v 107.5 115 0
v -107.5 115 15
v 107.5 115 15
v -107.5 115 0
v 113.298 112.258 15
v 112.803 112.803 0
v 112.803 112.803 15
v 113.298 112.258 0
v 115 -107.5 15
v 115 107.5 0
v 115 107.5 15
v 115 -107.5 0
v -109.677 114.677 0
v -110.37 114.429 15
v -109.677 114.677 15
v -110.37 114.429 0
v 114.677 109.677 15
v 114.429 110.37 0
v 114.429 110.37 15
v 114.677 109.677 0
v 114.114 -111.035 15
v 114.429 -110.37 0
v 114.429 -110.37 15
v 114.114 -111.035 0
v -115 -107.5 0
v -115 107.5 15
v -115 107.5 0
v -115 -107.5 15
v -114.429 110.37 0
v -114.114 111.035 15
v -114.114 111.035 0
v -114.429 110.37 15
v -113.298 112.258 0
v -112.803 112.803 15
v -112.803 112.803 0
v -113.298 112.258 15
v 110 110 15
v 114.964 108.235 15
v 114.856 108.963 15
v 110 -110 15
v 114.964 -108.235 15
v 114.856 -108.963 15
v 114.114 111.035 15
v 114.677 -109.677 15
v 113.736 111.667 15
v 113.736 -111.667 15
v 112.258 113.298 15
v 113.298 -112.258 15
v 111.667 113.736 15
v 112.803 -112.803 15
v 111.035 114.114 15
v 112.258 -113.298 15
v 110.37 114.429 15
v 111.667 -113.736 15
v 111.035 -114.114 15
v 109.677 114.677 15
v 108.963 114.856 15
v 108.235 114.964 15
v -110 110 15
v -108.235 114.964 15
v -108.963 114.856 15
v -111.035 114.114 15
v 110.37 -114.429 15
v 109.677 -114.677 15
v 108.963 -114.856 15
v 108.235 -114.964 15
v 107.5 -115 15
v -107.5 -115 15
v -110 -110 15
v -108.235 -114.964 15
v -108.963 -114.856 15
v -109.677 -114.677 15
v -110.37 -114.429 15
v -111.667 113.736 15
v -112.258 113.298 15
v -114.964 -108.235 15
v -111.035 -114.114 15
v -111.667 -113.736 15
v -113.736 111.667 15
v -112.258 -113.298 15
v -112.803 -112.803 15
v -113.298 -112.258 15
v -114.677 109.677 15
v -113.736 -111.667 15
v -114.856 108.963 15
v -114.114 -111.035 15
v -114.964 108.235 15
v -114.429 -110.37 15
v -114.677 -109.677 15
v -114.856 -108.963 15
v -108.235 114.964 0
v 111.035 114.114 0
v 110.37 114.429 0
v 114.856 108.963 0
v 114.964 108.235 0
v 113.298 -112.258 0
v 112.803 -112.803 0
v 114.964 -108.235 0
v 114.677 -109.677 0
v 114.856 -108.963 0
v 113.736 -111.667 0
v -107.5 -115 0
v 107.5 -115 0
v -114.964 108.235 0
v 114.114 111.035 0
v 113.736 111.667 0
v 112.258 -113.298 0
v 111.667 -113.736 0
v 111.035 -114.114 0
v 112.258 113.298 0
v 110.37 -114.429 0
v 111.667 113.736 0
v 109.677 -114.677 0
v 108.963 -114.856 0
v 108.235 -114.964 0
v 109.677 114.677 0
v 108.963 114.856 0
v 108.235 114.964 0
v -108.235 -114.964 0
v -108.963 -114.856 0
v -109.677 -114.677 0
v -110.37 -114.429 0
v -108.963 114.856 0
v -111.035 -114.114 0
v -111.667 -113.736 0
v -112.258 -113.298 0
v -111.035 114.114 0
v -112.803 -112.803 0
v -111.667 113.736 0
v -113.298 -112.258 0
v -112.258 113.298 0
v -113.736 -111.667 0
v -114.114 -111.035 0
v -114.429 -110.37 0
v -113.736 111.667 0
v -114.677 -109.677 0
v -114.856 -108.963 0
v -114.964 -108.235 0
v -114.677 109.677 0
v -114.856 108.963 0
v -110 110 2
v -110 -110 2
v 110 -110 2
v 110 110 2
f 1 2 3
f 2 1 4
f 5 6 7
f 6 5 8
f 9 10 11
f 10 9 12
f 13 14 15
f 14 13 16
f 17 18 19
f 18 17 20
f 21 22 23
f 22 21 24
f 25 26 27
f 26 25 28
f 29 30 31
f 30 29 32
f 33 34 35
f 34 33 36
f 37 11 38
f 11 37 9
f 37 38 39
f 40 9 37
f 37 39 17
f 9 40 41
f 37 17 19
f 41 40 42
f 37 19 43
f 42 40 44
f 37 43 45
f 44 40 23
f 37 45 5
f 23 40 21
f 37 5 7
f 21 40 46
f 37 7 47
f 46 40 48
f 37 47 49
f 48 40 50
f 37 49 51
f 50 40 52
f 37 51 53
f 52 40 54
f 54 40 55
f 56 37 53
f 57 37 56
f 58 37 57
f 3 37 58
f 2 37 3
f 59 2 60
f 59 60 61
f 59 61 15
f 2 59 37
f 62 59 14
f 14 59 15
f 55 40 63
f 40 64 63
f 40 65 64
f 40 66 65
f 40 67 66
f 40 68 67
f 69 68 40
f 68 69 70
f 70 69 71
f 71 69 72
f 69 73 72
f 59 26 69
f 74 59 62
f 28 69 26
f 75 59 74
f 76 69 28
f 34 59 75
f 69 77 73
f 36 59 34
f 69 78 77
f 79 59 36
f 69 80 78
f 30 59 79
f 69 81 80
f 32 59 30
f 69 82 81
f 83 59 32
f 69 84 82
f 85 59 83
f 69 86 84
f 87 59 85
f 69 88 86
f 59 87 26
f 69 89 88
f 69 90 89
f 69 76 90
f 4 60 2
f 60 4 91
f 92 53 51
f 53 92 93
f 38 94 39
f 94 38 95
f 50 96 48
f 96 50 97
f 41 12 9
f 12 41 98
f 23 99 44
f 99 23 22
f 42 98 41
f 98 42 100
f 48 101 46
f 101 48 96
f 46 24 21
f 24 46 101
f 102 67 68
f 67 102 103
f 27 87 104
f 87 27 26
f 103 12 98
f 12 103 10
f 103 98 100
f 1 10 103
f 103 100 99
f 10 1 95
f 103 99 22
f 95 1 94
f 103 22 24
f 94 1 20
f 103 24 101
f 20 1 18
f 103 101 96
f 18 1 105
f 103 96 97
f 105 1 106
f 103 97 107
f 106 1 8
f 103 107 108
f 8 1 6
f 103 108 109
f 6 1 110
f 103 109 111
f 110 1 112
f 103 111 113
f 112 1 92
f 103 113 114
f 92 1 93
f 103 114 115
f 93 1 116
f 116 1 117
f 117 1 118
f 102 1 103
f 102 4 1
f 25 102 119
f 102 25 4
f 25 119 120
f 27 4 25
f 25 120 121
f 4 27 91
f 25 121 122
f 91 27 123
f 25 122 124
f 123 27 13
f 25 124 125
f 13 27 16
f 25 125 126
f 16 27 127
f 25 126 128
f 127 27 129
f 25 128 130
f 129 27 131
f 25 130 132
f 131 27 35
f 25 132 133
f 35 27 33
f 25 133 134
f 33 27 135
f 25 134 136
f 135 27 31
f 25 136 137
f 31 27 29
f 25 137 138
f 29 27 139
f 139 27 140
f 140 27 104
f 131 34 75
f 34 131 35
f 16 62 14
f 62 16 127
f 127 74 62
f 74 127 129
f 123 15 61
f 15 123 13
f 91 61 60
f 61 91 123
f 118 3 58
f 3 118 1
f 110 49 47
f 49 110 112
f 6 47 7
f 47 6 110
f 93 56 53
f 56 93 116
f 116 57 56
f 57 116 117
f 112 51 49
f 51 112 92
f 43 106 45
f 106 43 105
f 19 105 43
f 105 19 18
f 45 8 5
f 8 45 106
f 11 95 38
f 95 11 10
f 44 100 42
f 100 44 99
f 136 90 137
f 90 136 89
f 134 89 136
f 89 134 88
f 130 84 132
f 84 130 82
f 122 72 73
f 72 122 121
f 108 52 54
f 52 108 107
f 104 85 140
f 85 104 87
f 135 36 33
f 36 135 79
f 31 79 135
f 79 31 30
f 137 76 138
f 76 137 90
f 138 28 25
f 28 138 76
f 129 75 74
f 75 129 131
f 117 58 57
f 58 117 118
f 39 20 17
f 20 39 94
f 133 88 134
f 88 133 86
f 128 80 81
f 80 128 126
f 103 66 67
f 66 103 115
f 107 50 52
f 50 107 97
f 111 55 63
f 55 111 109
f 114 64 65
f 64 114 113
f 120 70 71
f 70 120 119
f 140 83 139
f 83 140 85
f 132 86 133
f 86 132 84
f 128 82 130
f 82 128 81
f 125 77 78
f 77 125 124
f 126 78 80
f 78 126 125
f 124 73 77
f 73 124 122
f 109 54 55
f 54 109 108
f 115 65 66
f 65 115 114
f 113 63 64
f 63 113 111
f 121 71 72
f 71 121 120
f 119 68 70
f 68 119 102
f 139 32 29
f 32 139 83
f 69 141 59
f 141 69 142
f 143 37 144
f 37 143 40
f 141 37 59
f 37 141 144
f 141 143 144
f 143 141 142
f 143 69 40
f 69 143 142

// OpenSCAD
difference() {
    minkowski() {
    cube_center([215,215,15]);
    cylinder(d=15,h=0.0001,$fn=64);
    }
    translate([0,0,2])
    cube_center([220,220,20]);
}



module cube_center(dims) {
    translate([-dims[0]/2, -dims[1]/2, 0])
    cube(dims);
}
